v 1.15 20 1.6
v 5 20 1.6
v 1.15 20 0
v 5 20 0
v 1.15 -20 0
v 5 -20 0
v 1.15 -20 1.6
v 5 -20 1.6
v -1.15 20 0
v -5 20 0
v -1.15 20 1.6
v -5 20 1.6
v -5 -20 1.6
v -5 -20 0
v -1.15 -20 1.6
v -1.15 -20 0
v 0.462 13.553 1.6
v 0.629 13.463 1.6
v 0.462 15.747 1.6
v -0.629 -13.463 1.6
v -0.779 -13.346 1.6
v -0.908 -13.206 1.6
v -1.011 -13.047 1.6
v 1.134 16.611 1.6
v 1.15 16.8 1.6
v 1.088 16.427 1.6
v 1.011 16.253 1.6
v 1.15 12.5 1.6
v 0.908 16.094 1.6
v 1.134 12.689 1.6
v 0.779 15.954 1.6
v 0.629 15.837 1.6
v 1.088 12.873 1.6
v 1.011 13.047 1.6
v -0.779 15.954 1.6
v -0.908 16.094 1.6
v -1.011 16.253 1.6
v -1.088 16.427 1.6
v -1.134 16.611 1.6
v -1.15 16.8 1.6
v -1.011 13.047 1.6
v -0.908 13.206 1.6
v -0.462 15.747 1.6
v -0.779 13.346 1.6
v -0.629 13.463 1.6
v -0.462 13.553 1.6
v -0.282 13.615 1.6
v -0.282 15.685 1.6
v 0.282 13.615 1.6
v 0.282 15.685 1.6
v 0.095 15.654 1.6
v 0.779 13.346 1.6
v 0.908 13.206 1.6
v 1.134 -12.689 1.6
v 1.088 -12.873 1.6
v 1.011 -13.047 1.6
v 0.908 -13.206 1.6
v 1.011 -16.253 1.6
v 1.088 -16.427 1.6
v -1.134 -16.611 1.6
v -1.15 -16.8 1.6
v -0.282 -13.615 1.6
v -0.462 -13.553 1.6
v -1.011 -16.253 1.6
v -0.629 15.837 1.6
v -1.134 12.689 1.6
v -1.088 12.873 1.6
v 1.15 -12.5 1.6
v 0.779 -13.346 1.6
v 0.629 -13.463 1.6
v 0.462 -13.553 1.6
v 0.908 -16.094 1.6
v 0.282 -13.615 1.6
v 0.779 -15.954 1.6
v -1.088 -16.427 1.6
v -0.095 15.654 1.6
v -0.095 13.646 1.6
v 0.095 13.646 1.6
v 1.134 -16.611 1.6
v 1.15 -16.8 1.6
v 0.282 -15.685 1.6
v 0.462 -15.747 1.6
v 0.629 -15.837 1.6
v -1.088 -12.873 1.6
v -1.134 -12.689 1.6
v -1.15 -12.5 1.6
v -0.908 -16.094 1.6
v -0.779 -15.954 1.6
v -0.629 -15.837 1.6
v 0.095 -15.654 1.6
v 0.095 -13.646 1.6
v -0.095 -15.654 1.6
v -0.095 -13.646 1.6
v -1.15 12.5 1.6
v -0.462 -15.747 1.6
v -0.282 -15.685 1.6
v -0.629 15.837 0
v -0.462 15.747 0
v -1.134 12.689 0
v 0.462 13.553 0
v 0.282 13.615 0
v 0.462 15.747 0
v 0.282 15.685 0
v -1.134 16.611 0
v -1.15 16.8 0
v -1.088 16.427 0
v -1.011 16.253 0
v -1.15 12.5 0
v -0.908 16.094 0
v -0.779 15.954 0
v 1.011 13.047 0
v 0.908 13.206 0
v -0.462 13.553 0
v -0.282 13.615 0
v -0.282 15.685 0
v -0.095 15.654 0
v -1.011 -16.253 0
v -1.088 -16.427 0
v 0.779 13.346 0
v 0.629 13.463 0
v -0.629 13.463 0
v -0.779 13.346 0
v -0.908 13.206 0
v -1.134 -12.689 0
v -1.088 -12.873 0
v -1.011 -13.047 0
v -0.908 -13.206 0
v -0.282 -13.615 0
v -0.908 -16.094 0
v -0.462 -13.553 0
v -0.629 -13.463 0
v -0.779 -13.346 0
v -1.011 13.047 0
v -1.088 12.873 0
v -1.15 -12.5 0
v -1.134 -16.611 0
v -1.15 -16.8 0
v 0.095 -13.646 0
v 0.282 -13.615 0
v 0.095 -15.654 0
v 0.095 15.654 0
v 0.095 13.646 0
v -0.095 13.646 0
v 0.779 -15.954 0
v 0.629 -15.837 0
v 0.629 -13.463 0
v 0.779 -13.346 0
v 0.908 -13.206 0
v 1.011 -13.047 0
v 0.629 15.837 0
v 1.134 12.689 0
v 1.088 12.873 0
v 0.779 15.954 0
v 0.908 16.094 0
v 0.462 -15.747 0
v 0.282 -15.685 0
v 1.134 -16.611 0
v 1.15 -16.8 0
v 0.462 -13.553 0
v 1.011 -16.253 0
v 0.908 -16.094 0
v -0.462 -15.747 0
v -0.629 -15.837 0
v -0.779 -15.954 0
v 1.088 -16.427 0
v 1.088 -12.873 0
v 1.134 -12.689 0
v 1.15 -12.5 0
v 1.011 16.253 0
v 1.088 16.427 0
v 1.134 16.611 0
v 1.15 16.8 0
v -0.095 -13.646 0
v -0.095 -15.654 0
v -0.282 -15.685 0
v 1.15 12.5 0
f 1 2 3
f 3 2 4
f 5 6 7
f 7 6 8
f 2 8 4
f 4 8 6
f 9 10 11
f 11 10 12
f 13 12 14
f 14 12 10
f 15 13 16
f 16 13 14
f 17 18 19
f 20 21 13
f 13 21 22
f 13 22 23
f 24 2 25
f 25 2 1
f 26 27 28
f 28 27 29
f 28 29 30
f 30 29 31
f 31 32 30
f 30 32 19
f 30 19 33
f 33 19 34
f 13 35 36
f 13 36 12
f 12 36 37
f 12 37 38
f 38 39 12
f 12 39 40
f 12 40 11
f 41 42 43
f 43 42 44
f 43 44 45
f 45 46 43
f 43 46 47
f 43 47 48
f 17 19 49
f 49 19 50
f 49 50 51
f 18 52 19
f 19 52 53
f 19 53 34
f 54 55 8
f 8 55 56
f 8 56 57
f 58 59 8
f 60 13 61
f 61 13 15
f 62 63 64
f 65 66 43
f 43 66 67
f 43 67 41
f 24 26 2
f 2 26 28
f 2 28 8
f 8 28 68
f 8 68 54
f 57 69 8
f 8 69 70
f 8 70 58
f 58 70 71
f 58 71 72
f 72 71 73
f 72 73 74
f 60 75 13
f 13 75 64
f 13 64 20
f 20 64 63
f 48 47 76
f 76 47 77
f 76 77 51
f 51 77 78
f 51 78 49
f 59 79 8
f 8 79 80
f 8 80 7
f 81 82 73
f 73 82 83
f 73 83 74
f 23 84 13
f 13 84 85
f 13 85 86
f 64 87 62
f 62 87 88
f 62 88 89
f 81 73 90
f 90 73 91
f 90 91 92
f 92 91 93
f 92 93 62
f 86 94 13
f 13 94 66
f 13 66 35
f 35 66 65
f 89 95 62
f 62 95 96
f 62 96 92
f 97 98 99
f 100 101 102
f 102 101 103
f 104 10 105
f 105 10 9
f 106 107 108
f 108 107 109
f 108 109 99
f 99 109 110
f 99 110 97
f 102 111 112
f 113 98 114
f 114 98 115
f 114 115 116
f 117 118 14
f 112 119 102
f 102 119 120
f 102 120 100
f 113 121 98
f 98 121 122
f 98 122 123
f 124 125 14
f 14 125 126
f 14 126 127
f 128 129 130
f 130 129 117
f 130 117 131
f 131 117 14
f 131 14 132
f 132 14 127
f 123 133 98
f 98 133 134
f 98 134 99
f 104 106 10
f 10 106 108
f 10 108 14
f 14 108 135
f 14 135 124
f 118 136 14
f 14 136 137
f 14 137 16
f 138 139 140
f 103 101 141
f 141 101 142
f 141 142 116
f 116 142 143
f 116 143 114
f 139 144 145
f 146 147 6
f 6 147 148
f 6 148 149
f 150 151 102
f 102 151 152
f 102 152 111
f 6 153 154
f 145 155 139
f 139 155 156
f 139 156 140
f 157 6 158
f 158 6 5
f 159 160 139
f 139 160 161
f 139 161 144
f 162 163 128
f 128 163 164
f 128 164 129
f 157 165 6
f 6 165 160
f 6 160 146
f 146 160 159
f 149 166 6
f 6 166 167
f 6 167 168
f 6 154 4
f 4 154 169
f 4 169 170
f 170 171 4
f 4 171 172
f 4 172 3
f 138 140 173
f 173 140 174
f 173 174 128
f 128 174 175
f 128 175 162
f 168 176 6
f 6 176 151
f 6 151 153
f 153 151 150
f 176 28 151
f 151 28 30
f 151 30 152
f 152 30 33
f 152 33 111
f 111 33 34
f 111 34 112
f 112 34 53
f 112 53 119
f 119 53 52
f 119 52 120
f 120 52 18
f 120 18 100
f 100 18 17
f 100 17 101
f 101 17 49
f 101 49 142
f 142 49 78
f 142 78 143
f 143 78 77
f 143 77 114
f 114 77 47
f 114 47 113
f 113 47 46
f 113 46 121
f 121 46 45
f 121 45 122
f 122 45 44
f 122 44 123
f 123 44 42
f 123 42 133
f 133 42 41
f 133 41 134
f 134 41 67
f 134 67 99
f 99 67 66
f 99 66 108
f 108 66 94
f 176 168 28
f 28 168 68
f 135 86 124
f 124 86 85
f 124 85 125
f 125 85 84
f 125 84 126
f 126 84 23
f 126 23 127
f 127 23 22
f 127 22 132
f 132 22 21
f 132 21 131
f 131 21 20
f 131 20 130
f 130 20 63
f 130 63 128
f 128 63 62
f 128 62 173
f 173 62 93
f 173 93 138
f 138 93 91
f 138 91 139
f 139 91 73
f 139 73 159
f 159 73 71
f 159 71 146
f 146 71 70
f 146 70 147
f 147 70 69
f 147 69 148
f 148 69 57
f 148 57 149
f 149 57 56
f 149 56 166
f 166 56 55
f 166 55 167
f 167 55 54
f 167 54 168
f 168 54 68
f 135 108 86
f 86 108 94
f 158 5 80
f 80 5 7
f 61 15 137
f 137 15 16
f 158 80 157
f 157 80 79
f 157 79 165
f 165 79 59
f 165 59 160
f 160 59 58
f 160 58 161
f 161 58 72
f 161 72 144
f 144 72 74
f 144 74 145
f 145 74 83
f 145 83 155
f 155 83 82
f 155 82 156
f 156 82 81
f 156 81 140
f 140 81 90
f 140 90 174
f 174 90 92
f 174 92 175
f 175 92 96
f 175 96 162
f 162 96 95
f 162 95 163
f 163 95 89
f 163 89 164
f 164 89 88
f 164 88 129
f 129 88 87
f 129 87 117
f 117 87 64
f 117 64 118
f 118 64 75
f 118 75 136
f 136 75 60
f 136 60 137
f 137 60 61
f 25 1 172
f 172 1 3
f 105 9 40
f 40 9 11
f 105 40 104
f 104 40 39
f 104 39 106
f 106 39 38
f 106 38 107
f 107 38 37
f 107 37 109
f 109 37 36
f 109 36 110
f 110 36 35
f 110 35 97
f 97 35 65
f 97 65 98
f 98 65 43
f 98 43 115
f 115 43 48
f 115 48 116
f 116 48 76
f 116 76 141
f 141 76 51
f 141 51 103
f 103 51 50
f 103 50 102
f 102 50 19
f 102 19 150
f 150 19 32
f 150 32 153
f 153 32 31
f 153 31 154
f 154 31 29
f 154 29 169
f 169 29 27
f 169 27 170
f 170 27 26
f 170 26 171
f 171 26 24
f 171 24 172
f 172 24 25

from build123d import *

# Parameters (mm, degrees)
SKETCH1_W           = 10
SKETCH1_H           = 40
BOSS_EXTRUDE1_DEPTH = 1.6
CUT_EXTRUDE1_DEPTH  = 21.67752403


with BuildPart() as part:
    # Sketch1 → Boss-Extrude1 (new body)
    with BuildSketch(Plane.XY):
        Rectangle(SKETCH1_W, SKETCH1_H)
    extrude(amount=BOSS_EXTRUDE1_DEPTH)

    # Sketch3 → Cut-Extrude1 (cut, through all)
    with BuildSketch(Plane.XY.offset(1.6)):
        with BuildLine():
            Line((1.15, 12.5), (1.15, -12.5))
            ThreePointArc((1.15, -12.5), (0, -13.65), (-1.15, -12.5))
            Line((-1.15, -12.5), (-1.15, 12.5))
            ThreePointArc((-1.15, 12.5), (0, 13.65), (1.15, 12.5))
        make_face()
        with BuildLine():
            Line((1.15, 41.8), (1.15, 16.8))
            ThreePointArc((1.15, 16.8), (0, 15.65), (-1.15, 16.8))
            Line((-1.15, 16.8), (-1.15, 41.8))
            ThreePointArc((-1.15, 41.8), (0, 42.95), (1.15, 41.8))
        make_face()
        with BuildLine():
            Line((1.15, -16.8), (1.15, -41.8))
            ThreePointArc((1.15, -41.8), (0, -42.95), (-1.15, -41.8))
            Line((-1.15, -41.8), (-1.15, -16.8))
            ThreePointArc((-1.15, -16.8), (0, -15.65), (1.15, -16.8))
        make_face()
    extrude(amount=-CUT_EXTRUDE1_DEPTH, mode=Mode.SUBTRACT)


solid = part.part
